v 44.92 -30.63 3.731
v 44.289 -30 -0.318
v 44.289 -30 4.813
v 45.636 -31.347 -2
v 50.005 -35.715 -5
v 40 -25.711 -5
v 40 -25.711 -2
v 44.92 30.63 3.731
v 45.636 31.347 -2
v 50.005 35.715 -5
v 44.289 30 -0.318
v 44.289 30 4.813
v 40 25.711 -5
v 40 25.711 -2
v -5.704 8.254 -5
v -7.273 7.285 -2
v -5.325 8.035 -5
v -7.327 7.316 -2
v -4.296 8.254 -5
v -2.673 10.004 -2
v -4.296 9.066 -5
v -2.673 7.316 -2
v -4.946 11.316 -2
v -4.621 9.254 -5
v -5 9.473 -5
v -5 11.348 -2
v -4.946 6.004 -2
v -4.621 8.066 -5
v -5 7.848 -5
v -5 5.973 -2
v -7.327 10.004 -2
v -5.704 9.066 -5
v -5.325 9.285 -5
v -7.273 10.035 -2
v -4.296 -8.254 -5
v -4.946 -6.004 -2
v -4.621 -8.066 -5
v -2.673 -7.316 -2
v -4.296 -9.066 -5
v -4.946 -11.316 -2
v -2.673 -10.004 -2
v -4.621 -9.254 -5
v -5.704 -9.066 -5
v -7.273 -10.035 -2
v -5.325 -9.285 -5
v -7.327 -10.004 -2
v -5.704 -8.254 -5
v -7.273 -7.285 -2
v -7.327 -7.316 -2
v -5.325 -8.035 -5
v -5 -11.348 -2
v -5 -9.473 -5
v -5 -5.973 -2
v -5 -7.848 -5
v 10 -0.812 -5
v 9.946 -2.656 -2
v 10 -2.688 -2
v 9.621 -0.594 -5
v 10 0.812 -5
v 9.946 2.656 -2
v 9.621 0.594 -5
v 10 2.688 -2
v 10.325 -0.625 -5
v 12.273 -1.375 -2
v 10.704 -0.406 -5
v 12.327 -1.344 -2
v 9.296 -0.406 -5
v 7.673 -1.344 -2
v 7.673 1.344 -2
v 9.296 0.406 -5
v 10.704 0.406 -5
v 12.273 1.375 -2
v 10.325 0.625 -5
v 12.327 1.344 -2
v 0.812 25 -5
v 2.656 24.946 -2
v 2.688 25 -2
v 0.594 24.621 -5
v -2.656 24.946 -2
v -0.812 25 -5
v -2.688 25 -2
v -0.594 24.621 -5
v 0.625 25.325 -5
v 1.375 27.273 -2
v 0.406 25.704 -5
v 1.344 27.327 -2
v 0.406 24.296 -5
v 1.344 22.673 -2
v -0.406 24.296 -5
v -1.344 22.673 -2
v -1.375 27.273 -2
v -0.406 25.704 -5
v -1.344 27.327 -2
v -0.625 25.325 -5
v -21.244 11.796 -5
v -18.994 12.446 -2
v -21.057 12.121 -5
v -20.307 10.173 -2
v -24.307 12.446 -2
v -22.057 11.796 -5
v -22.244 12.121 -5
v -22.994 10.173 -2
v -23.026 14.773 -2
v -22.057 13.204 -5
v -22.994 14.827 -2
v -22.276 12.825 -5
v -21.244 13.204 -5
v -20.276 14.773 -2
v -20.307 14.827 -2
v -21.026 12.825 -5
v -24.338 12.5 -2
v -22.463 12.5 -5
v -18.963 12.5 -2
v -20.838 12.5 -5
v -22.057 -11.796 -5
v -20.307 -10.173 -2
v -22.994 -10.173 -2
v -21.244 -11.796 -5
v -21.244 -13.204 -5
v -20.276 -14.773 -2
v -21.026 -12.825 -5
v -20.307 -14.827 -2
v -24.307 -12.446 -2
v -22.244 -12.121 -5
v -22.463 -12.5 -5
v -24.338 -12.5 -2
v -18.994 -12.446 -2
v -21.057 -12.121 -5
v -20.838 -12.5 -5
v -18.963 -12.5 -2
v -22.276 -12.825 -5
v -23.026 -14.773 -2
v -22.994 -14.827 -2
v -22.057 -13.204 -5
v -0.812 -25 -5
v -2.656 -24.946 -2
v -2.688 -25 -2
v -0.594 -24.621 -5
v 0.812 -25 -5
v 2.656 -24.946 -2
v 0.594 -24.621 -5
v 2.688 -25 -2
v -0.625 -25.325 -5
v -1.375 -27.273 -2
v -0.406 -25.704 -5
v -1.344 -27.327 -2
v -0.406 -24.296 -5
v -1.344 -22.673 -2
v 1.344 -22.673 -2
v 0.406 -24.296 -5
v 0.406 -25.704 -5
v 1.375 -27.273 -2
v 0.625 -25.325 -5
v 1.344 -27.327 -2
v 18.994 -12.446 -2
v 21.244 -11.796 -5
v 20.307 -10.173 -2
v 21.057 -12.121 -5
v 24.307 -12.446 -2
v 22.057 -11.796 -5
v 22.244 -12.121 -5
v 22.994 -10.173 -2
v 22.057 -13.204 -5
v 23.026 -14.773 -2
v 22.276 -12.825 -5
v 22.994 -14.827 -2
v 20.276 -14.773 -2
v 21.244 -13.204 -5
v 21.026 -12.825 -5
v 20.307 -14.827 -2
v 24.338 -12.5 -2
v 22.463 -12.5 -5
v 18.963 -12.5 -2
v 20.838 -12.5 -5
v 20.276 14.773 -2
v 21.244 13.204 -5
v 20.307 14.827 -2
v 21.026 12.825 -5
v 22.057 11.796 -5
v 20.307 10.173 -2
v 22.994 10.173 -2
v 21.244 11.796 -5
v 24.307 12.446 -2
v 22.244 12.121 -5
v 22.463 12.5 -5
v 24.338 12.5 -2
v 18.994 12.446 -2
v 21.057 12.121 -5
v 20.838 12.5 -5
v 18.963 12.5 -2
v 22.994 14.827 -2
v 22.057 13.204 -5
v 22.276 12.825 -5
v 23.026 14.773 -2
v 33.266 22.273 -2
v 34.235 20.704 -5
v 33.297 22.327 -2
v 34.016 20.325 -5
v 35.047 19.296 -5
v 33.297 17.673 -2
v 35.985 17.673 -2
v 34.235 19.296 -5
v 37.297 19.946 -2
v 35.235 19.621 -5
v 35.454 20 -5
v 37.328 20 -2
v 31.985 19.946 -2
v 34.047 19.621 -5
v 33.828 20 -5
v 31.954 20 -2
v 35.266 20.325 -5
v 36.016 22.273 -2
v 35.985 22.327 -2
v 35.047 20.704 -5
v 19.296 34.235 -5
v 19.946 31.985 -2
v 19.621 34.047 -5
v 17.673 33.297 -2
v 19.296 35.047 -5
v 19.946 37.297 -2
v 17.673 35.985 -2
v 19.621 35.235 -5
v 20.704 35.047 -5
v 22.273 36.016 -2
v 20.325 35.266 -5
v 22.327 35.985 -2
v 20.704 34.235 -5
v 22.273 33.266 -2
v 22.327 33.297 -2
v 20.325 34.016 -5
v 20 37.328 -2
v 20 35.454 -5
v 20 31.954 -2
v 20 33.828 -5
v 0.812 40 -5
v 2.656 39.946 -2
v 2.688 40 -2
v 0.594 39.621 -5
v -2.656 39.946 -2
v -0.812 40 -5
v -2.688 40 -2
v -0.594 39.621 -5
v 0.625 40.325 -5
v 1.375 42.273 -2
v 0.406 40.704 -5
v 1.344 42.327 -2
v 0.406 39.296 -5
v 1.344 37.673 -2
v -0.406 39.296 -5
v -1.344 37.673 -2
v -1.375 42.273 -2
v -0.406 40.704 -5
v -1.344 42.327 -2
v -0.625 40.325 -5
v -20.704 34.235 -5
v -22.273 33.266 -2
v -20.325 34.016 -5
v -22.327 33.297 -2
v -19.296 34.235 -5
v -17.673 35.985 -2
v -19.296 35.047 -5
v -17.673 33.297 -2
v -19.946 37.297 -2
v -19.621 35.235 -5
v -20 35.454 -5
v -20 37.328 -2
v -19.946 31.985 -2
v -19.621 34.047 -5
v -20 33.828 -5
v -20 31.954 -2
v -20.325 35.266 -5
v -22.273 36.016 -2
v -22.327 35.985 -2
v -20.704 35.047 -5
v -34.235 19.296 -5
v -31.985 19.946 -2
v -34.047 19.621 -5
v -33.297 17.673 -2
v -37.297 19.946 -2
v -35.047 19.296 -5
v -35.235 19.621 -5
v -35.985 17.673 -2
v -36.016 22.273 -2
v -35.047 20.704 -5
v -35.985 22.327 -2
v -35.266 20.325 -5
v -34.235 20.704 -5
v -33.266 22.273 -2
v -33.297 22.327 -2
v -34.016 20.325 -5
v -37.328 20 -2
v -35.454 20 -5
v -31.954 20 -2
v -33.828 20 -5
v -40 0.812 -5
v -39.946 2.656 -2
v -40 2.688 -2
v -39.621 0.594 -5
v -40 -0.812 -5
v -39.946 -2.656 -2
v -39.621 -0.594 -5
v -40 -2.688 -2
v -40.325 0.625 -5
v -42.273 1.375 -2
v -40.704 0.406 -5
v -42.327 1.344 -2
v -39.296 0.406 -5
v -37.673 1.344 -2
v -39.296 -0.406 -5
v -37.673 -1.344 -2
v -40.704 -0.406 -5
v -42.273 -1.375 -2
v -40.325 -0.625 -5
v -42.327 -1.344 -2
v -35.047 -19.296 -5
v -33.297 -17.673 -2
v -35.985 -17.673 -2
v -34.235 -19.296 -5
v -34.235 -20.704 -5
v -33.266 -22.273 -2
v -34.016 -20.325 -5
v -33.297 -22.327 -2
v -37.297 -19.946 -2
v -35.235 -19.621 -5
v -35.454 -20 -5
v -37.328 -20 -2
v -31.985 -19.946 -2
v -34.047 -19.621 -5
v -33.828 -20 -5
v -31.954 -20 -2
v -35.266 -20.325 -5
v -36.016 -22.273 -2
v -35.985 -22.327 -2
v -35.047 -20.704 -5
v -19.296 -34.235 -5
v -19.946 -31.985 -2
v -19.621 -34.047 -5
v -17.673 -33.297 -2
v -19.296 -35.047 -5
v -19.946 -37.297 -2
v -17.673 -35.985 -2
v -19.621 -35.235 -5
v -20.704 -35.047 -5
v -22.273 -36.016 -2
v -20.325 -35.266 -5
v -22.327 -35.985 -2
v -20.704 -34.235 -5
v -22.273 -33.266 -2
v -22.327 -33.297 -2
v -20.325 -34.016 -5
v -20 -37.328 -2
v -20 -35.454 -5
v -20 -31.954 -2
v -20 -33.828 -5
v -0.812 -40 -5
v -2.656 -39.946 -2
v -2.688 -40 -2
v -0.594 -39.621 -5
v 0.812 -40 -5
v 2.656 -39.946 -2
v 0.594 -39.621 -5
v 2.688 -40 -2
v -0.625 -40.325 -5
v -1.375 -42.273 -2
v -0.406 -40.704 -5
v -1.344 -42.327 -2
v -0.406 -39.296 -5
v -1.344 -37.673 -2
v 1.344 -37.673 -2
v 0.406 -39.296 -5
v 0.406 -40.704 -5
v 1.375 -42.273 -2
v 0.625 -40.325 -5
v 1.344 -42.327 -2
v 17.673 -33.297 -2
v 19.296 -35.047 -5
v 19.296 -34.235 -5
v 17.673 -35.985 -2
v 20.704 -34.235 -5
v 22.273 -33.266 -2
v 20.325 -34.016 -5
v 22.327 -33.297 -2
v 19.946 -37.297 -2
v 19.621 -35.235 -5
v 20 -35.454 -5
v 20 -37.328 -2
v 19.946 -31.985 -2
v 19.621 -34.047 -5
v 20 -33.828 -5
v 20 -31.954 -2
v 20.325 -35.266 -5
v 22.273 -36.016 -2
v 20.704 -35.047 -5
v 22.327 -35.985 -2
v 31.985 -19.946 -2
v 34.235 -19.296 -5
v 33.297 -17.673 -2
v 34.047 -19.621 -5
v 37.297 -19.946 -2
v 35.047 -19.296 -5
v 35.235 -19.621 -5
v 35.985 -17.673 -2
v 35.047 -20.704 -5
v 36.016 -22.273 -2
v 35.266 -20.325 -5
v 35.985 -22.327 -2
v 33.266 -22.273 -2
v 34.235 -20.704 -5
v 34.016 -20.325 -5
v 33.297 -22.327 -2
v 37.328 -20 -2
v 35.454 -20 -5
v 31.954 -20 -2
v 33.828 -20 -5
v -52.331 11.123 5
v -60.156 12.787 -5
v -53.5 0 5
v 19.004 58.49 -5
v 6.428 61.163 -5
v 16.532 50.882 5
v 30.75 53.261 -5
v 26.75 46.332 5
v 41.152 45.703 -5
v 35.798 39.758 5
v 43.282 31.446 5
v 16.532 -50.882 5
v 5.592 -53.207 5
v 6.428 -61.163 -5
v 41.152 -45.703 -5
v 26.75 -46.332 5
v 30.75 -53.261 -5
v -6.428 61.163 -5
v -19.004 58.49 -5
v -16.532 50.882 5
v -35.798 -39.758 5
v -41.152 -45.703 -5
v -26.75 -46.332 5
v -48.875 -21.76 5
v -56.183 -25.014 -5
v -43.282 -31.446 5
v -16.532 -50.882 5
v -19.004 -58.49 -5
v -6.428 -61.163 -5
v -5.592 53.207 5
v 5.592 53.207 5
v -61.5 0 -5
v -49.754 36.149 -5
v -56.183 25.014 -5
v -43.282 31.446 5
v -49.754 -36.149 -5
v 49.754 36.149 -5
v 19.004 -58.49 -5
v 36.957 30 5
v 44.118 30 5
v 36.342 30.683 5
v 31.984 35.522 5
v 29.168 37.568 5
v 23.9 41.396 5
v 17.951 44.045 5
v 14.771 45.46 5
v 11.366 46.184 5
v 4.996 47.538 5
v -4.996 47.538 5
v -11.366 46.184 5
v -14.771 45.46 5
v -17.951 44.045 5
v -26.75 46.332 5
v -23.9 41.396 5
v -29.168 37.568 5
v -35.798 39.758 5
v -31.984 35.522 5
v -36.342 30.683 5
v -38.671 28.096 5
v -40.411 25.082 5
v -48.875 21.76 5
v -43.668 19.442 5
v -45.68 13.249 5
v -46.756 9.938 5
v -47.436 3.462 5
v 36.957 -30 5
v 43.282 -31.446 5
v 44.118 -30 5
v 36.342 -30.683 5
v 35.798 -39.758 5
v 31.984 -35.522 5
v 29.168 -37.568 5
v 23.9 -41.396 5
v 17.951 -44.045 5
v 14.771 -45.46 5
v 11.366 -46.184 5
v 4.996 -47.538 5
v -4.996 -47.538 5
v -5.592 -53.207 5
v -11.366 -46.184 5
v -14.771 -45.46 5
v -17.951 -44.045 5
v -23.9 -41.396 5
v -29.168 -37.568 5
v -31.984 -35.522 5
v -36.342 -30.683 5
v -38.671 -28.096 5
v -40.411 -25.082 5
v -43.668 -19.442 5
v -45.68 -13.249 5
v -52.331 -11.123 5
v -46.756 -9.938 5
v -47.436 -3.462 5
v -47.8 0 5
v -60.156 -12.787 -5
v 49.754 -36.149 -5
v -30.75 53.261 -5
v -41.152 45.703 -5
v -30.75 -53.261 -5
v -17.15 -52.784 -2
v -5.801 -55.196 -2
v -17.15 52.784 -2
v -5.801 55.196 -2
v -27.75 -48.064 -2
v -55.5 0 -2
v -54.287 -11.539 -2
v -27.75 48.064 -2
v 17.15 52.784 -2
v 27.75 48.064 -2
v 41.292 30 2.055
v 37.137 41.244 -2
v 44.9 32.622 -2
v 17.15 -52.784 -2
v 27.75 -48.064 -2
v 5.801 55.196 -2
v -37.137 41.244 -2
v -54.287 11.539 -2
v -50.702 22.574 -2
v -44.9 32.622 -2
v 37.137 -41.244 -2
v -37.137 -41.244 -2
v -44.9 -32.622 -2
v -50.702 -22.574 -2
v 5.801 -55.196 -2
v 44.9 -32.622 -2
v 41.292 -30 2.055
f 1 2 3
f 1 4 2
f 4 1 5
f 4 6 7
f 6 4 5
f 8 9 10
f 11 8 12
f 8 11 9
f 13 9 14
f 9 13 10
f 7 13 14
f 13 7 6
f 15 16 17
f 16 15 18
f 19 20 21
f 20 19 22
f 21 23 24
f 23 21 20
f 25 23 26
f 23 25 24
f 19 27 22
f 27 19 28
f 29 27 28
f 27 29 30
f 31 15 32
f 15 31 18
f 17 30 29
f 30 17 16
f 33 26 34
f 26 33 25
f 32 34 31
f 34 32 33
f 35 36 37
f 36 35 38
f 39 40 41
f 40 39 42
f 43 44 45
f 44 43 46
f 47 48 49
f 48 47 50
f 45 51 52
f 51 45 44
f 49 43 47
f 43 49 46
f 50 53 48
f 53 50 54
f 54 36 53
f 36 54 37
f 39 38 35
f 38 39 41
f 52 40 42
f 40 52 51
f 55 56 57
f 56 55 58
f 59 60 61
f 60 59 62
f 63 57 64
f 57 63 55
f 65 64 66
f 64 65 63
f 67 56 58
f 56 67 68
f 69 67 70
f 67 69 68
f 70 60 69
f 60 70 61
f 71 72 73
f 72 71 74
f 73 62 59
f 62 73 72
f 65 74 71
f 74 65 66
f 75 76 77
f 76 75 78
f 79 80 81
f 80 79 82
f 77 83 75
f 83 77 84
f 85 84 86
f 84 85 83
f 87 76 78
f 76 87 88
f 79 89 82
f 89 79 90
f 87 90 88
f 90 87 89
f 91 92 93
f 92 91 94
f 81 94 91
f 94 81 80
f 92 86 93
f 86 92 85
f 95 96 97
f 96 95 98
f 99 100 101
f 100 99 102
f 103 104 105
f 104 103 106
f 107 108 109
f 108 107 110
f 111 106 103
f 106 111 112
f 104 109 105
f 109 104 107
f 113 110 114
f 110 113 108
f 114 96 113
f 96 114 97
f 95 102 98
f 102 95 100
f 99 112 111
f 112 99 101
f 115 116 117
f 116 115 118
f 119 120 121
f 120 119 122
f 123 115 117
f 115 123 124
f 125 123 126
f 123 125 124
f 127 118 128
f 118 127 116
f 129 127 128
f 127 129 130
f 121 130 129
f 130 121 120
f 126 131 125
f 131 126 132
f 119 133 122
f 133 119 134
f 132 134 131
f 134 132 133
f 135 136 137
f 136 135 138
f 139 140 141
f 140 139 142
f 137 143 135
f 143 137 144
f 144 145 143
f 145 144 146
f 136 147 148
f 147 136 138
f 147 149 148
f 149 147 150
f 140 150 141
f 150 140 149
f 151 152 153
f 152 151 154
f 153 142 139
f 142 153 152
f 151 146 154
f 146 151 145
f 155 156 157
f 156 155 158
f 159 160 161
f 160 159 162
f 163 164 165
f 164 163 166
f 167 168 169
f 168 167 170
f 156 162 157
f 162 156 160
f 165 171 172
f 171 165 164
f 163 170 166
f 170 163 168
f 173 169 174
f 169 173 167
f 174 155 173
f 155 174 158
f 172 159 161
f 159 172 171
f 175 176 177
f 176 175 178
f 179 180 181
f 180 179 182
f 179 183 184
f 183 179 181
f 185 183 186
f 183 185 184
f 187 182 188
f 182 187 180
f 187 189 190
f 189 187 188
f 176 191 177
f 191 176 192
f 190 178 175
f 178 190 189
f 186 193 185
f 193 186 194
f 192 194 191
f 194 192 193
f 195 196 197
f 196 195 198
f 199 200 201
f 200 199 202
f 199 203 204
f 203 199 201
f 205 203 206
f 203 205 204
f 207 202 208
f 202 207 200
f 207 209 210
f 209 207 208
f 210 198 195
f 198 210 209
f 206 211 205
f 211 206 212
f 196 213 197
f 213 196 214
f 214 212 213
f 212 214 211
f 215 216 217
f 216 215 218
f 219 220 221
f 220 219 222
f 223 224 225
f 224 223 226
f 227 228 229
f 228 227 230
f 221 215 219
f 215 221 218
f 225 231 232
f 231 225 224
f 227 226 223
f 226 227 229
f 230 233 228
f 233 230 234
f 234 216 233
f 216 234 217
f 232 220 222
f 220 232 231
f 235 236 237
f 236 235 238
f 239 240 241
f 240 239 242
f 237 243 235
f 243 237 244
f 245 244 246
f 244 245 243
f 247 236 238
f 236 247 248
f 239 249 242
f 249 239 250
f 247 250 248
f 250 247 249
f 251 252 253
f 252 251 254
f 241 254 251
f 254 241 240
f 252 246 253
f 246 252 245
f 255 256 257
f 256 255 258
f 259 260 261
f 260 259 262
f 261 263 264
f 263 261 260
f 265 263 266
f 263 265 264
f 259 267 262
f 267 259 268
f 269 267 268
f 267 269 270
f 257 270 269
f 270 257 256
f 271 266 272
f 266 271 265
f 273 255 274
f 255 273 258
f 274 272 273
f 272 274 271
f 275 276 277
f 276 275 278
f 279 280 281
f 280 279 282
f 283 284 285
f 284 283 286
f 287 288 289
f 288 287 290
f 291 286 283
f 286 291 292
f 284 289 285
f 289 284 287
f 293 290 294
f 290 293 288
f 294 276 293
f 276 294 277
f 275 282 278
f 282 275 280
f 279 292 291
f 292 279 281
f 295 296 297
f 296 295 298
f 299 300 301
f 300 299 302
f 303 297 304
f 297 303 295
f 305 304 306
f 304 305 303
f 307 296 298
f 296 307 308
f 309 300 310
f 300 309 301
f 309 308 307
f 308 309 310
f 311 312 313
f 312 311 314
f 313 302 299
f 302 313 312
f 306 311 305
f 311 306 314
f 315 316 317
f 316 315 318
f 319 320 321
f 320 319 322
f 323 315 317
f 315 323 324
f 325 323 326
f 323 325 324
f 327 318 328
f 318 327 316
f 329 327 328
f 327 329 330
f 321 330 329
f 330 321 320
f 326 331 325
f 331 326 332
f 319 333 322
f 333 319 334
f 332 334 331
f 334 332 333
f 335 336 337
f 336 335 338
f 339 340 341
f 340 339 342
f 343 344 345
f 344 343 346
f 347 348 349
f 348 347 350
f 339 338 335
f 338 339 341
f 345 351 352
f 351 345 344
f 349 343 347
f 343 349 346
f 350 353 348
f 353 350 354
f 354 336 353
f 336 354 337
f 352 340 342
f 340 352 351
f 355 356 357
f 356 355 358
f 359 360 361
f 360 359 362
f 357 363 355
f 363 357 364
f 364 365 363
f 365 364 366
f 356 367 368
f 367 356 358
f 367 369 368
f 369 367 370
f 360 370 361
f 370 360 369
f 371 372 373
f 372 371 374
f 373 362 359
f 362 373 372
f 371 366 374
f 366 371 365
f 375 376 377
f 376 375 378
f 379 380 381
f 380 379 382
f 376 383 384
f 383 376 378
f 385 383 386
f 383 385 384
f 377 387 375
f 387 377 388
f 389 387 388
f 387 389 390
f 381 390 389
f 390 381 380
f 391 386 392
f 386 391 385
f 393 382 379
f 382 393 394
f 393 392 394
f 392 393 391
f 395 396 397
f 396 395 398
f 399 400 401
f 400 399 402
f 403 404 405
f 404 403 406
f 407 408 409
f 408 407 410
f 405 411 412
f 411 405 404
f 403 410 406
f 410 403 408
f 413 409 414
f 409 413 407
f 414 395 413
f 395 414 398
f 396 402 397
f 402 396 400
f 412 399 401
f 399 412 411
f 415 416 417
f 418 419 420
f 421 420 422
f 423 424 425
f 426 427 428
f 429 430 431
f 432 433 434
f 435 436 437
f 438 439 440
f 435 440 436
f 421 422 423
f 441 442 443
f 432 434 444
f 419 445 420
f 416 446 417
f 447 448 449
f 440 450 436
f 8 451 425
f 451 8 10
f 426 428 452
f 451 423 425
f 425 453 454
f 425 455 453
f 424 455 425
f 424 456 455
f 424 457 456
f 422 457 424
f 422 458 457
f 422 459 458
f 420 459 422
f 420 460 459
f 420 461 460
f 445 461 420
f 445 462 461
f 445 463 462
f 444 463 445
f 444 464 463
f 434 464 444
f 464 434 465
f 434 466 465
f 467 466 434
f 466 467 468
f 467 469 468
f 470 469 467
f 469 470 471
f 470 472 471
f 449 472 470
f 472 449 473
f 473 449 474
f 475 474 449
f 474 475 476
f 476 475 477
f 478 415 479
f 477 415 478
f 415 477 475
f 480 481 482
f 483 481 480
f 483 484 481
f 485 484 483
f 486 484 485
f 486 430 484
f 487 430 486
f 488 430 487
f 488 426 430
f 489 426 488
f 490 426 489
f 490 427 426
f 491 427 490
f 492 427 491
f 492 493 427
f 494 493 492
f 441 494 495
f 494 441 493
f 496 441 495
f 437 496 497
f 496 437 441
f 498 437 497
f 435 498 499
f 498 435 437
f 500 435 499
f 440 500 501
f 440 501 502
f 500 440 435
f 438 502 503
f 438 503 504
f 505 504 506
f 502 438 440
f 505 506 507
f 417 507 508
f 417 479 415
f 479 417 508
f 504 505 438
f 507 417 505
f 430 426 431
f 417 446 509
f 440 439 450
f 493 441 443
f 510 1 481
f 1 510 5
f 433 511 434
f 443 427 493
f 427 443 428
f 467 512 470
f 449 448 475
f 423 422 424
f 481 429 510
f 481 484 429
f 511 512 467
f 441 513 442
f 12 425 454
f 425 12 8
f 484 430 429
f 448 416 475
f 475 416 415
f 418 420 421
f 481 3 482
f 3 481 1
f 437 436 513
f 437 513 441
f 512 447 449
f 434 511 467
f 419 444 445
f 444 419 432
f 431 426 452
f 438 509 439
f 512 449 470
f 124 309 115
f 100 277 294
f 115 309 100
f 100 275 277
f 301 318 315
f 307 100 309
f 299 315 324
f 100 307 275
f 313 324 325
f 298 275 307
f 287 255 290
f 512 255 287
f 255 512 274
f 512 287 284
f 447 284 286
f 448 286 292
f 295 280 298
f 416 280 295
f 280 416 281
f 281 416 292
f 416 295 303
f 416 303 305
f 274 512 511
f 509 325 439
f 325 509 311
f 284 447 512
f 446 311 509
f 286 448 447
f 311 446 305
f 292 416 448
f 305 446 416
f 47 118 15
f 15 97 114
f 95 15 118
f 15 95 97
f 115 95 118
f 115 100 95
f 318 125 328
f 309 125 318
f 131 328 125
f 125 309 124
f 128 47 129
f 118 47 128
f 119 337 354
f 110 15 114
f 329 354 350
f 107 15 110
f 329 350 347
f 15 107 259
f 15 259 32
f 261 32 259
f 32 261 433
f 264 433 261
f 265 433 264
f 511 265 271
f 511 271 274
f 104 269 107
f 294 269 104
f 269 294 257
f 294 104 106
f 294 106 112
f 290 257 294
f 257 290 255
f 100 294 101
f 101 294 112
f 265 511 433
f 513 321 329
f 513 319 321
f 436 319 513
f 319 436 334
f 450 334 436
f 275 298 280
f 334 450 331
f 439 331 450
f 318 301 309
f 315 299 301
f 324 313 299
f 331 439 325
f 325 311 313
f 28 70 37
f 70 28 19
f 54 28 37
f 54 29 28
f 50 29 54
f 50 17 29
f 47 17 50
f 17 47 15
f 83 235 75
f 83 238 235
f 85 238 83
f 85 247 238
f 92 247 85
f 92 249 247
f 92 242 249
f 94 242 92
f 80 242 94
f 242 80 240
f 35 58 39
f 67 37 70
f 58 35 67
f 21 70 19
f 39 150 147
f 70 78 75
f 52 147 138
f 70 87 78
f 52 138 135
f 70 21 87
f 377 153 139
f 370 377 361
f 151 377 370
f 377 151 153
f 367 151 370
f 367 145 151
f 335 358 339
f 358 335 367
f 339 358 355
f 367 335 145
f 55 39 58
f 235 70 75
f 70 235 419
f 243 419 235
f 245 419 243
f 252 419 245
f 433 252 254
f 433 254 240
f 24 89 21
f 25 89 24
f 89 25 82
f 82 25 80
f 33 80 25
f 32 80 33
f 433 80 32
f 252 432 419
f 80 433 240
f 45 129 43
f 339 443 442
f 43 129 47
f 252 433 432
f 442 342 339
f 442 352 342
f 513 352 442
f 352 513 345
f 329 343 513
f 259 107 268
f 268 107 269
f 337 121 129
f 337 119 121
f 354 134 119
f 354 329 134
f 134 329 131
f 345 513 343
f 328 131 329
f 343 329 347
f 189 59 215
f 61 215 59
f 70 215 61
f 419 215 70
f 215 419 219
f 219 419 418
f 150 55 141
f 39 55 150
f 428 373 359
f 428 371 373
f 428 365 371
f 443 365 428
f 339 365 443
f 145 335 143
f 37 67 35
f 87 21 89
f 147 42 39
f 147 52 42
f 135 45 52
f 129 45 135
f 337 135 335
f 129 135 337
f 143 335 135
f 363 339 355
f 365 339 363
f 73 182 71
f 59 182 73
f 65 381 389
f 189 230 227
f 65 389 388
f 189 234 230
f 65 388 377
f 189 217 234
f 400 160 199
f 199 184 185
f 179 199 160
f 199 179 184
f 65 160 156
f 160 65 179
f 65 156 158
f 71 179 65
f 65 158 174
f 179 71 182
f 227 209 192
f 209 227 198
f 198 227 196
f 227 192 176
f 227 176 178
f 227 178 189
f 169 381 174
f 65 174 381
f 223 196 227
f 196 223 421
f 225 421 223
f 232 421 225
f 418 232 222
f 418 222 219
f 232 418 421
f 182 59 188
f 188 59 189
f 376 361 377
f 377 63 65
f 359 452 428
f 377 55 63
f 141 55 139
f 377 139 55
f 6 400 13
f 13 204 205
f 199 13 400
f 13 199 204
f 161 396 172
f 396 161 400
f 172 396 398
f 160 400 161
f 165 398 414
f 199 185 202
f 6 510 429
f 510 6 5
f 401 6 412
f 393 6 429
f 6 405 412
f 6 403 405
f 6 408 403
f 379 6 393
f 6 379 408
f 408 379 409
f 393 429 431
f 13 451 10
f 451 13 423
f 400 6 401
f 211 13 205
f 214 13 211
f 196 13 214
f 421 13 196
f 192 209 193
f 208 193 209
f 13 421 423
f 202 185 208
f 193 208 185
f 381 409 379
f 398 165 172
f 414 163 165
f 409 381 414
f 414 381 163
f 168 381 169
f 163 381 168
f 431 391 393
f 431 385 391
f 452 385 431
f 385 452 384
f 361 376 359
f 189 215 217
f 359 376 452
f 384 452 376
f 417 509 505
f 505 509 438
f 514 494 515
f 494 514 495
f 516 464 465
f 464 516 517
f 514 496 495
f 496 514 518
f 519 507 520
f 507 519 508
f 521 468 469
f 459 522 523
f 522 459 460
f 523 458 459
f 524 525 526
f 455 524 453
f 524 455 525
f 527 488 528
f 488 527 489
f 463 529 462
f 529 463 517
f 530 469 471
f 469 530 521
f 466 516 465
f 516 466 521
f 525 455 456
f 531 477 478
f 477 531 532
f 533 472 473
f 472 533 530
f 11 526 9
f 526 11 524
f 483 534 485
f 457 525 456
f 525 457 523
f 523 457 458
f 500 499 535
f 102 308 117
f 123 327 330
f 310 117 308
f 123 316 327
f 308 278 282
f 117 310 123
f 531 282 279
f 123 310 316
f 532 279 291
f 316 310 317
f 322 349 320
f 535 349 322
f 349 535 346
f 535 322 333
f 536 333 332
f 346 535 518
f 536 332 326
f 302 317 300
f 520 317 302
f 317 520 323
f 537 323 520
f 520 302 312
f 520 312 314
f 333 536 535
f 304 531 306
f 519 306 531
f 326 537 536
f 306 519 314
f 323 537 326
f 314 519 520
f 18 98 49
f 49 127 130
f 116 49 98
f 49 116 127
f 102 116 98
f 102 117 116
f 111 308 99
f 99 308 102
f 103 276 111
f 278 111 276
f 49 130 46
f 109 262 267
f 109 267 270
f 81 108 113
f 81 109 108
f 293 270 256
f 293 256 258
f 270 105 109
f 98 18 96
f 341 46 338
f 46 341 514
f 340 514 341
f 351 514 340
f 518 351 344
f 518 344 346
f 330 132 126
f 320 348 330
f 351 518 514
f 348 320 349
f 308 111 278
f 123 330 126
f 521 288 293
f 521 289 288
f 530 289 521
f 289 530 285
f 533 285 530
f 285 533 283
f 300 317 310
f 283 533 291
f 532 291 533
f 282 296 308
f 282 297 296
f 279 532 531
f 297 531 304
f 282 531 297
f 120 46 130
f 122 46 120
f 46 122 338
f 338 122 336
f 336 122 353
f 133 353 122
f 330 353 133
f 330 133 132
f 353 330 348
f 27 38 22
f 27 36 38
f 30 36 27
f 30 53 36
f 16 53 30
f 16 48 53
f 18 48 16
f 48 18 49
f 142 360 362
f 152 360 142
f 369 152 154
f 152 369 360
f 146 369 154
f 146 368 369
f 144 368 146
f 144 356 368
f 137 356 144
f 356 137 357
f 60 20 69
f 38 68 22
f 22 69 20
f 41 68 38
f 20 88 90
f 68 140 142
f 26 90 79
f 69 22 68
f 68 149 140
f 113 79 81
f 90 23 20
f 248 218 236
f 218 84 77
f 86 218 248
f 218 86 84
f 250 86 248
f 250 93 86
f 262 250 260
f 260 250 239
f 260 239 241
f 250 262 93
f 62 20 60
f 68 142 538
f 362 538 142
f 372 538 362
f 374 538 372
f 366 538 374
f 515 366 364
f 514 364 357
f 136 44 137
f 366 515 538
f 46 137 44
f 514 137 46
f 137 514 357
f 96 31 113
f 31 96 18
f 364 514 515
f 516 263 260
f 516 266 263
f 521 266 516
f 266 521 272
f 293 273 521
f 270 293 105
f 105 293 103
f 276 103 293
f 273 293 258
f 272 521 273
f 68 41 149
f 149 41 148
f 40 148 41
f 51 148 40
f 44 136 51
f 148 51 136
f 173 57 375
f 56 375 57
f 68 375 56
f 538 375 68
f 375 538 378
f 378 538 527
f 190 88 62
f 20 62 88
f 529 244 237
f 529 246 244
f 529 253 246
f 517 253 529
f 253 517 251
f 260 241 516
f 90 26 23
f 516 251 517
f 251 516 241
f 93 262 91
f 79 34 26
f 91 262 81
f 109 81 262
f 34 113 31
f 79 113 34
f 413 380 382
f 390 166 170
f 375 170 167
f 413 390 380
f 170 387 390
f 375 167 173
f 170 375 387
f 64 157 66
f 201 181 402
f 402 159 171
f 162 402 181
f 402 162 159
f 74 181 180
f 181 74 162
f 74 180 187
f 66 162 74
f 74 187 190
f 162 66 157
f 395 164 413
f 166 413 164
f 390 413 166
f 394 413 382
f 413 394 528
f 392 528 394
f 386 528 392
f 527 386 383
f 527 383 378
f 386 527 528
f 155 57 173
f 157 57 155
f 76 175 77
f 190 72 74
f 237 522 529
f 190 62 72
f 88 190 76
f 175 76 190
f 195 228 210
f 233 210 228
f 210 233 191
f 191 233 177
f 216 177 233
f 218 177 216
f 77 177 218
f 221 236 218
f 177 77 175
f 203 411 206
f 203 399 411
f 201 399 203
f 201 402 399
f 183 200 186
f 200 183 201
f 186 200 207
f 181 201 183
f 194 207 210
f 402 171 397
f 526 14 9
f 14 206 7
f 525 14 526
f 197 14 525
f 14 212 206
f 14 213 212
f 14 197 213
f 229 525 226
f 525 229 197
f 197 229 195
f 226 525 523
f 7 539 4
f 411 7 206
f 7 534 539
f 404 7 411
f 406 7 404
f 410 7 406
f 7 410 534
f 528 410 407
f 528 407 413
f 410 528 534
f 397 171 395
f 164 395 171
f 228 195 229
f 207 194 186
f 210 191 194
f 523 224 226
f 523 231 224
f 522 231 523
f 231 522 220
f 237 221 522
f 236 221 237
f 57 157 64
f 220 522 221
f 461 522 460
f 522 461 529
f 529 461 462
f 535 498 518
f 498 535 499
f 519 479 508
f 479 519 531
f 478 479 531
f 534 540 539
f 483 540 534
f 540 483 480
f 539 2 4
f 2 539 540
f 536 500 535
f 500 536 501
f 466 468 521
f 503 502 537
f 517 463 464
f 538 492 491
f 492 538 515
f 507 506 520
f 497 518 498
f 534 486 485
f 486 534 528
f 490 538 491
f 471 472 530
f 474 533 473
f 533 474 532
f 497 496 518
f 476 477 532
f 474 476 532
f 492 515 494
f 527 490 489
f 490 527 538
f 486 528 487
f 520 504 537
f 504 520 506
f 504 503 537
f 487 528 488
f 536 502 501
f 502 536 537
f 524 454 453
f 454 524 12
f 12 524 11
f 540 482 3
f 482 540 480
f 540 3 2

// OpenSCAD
cylinder_fn = 30;
hole_fn = 6;

mic_d = 95;
height = 10;
wall_thickness = 3;

difference() {
    cylinder(h=height, d1=mic_d+16+4*wall_thickness, d2=mic_d+4*wall_thickness, center=true, $fn=cylinder_fn);
    translate([0,0,wall_thickness]) cylinder(h=height, d1=mic_d+16, d2=mic_d-2*wall_thickness, center=true, $fn=cylinder_fn);
    //translate([0,0,height/2]) cylinder(d=mic_d, h=height, center=true, $fn=cylinder_fn);
    difference() {
        translate([50+35,0,0]) rotate([0,0,45]) cube([100,100,100], center=true);
        cube([80,80,80], center=true);
    }
    translate([60/2,0,60/2-wall_thickness/2]) cube([60,60,60], center=true);
    for (i = [0:3-1]) rotate([0,0,i*120+30]) translate([0,10,-3.5]) cylinder(h=4, d1=1, d2=6, center=true, $fn=hole_fn);
    for (i = [0:6-1]) rotate([0,0,i*60]) translate([0,25,-3.5]) cylinder(h=4, d1=1, d2=6, center=true, $fn=hole_fn);
    for (i = [0:12-1-1]) rotate([0,0,i*30-60]) translate([0,40,-3.5]) cylinder(h=4, d1=1, d2=6, center=true, $fn=hole_fn);
}
